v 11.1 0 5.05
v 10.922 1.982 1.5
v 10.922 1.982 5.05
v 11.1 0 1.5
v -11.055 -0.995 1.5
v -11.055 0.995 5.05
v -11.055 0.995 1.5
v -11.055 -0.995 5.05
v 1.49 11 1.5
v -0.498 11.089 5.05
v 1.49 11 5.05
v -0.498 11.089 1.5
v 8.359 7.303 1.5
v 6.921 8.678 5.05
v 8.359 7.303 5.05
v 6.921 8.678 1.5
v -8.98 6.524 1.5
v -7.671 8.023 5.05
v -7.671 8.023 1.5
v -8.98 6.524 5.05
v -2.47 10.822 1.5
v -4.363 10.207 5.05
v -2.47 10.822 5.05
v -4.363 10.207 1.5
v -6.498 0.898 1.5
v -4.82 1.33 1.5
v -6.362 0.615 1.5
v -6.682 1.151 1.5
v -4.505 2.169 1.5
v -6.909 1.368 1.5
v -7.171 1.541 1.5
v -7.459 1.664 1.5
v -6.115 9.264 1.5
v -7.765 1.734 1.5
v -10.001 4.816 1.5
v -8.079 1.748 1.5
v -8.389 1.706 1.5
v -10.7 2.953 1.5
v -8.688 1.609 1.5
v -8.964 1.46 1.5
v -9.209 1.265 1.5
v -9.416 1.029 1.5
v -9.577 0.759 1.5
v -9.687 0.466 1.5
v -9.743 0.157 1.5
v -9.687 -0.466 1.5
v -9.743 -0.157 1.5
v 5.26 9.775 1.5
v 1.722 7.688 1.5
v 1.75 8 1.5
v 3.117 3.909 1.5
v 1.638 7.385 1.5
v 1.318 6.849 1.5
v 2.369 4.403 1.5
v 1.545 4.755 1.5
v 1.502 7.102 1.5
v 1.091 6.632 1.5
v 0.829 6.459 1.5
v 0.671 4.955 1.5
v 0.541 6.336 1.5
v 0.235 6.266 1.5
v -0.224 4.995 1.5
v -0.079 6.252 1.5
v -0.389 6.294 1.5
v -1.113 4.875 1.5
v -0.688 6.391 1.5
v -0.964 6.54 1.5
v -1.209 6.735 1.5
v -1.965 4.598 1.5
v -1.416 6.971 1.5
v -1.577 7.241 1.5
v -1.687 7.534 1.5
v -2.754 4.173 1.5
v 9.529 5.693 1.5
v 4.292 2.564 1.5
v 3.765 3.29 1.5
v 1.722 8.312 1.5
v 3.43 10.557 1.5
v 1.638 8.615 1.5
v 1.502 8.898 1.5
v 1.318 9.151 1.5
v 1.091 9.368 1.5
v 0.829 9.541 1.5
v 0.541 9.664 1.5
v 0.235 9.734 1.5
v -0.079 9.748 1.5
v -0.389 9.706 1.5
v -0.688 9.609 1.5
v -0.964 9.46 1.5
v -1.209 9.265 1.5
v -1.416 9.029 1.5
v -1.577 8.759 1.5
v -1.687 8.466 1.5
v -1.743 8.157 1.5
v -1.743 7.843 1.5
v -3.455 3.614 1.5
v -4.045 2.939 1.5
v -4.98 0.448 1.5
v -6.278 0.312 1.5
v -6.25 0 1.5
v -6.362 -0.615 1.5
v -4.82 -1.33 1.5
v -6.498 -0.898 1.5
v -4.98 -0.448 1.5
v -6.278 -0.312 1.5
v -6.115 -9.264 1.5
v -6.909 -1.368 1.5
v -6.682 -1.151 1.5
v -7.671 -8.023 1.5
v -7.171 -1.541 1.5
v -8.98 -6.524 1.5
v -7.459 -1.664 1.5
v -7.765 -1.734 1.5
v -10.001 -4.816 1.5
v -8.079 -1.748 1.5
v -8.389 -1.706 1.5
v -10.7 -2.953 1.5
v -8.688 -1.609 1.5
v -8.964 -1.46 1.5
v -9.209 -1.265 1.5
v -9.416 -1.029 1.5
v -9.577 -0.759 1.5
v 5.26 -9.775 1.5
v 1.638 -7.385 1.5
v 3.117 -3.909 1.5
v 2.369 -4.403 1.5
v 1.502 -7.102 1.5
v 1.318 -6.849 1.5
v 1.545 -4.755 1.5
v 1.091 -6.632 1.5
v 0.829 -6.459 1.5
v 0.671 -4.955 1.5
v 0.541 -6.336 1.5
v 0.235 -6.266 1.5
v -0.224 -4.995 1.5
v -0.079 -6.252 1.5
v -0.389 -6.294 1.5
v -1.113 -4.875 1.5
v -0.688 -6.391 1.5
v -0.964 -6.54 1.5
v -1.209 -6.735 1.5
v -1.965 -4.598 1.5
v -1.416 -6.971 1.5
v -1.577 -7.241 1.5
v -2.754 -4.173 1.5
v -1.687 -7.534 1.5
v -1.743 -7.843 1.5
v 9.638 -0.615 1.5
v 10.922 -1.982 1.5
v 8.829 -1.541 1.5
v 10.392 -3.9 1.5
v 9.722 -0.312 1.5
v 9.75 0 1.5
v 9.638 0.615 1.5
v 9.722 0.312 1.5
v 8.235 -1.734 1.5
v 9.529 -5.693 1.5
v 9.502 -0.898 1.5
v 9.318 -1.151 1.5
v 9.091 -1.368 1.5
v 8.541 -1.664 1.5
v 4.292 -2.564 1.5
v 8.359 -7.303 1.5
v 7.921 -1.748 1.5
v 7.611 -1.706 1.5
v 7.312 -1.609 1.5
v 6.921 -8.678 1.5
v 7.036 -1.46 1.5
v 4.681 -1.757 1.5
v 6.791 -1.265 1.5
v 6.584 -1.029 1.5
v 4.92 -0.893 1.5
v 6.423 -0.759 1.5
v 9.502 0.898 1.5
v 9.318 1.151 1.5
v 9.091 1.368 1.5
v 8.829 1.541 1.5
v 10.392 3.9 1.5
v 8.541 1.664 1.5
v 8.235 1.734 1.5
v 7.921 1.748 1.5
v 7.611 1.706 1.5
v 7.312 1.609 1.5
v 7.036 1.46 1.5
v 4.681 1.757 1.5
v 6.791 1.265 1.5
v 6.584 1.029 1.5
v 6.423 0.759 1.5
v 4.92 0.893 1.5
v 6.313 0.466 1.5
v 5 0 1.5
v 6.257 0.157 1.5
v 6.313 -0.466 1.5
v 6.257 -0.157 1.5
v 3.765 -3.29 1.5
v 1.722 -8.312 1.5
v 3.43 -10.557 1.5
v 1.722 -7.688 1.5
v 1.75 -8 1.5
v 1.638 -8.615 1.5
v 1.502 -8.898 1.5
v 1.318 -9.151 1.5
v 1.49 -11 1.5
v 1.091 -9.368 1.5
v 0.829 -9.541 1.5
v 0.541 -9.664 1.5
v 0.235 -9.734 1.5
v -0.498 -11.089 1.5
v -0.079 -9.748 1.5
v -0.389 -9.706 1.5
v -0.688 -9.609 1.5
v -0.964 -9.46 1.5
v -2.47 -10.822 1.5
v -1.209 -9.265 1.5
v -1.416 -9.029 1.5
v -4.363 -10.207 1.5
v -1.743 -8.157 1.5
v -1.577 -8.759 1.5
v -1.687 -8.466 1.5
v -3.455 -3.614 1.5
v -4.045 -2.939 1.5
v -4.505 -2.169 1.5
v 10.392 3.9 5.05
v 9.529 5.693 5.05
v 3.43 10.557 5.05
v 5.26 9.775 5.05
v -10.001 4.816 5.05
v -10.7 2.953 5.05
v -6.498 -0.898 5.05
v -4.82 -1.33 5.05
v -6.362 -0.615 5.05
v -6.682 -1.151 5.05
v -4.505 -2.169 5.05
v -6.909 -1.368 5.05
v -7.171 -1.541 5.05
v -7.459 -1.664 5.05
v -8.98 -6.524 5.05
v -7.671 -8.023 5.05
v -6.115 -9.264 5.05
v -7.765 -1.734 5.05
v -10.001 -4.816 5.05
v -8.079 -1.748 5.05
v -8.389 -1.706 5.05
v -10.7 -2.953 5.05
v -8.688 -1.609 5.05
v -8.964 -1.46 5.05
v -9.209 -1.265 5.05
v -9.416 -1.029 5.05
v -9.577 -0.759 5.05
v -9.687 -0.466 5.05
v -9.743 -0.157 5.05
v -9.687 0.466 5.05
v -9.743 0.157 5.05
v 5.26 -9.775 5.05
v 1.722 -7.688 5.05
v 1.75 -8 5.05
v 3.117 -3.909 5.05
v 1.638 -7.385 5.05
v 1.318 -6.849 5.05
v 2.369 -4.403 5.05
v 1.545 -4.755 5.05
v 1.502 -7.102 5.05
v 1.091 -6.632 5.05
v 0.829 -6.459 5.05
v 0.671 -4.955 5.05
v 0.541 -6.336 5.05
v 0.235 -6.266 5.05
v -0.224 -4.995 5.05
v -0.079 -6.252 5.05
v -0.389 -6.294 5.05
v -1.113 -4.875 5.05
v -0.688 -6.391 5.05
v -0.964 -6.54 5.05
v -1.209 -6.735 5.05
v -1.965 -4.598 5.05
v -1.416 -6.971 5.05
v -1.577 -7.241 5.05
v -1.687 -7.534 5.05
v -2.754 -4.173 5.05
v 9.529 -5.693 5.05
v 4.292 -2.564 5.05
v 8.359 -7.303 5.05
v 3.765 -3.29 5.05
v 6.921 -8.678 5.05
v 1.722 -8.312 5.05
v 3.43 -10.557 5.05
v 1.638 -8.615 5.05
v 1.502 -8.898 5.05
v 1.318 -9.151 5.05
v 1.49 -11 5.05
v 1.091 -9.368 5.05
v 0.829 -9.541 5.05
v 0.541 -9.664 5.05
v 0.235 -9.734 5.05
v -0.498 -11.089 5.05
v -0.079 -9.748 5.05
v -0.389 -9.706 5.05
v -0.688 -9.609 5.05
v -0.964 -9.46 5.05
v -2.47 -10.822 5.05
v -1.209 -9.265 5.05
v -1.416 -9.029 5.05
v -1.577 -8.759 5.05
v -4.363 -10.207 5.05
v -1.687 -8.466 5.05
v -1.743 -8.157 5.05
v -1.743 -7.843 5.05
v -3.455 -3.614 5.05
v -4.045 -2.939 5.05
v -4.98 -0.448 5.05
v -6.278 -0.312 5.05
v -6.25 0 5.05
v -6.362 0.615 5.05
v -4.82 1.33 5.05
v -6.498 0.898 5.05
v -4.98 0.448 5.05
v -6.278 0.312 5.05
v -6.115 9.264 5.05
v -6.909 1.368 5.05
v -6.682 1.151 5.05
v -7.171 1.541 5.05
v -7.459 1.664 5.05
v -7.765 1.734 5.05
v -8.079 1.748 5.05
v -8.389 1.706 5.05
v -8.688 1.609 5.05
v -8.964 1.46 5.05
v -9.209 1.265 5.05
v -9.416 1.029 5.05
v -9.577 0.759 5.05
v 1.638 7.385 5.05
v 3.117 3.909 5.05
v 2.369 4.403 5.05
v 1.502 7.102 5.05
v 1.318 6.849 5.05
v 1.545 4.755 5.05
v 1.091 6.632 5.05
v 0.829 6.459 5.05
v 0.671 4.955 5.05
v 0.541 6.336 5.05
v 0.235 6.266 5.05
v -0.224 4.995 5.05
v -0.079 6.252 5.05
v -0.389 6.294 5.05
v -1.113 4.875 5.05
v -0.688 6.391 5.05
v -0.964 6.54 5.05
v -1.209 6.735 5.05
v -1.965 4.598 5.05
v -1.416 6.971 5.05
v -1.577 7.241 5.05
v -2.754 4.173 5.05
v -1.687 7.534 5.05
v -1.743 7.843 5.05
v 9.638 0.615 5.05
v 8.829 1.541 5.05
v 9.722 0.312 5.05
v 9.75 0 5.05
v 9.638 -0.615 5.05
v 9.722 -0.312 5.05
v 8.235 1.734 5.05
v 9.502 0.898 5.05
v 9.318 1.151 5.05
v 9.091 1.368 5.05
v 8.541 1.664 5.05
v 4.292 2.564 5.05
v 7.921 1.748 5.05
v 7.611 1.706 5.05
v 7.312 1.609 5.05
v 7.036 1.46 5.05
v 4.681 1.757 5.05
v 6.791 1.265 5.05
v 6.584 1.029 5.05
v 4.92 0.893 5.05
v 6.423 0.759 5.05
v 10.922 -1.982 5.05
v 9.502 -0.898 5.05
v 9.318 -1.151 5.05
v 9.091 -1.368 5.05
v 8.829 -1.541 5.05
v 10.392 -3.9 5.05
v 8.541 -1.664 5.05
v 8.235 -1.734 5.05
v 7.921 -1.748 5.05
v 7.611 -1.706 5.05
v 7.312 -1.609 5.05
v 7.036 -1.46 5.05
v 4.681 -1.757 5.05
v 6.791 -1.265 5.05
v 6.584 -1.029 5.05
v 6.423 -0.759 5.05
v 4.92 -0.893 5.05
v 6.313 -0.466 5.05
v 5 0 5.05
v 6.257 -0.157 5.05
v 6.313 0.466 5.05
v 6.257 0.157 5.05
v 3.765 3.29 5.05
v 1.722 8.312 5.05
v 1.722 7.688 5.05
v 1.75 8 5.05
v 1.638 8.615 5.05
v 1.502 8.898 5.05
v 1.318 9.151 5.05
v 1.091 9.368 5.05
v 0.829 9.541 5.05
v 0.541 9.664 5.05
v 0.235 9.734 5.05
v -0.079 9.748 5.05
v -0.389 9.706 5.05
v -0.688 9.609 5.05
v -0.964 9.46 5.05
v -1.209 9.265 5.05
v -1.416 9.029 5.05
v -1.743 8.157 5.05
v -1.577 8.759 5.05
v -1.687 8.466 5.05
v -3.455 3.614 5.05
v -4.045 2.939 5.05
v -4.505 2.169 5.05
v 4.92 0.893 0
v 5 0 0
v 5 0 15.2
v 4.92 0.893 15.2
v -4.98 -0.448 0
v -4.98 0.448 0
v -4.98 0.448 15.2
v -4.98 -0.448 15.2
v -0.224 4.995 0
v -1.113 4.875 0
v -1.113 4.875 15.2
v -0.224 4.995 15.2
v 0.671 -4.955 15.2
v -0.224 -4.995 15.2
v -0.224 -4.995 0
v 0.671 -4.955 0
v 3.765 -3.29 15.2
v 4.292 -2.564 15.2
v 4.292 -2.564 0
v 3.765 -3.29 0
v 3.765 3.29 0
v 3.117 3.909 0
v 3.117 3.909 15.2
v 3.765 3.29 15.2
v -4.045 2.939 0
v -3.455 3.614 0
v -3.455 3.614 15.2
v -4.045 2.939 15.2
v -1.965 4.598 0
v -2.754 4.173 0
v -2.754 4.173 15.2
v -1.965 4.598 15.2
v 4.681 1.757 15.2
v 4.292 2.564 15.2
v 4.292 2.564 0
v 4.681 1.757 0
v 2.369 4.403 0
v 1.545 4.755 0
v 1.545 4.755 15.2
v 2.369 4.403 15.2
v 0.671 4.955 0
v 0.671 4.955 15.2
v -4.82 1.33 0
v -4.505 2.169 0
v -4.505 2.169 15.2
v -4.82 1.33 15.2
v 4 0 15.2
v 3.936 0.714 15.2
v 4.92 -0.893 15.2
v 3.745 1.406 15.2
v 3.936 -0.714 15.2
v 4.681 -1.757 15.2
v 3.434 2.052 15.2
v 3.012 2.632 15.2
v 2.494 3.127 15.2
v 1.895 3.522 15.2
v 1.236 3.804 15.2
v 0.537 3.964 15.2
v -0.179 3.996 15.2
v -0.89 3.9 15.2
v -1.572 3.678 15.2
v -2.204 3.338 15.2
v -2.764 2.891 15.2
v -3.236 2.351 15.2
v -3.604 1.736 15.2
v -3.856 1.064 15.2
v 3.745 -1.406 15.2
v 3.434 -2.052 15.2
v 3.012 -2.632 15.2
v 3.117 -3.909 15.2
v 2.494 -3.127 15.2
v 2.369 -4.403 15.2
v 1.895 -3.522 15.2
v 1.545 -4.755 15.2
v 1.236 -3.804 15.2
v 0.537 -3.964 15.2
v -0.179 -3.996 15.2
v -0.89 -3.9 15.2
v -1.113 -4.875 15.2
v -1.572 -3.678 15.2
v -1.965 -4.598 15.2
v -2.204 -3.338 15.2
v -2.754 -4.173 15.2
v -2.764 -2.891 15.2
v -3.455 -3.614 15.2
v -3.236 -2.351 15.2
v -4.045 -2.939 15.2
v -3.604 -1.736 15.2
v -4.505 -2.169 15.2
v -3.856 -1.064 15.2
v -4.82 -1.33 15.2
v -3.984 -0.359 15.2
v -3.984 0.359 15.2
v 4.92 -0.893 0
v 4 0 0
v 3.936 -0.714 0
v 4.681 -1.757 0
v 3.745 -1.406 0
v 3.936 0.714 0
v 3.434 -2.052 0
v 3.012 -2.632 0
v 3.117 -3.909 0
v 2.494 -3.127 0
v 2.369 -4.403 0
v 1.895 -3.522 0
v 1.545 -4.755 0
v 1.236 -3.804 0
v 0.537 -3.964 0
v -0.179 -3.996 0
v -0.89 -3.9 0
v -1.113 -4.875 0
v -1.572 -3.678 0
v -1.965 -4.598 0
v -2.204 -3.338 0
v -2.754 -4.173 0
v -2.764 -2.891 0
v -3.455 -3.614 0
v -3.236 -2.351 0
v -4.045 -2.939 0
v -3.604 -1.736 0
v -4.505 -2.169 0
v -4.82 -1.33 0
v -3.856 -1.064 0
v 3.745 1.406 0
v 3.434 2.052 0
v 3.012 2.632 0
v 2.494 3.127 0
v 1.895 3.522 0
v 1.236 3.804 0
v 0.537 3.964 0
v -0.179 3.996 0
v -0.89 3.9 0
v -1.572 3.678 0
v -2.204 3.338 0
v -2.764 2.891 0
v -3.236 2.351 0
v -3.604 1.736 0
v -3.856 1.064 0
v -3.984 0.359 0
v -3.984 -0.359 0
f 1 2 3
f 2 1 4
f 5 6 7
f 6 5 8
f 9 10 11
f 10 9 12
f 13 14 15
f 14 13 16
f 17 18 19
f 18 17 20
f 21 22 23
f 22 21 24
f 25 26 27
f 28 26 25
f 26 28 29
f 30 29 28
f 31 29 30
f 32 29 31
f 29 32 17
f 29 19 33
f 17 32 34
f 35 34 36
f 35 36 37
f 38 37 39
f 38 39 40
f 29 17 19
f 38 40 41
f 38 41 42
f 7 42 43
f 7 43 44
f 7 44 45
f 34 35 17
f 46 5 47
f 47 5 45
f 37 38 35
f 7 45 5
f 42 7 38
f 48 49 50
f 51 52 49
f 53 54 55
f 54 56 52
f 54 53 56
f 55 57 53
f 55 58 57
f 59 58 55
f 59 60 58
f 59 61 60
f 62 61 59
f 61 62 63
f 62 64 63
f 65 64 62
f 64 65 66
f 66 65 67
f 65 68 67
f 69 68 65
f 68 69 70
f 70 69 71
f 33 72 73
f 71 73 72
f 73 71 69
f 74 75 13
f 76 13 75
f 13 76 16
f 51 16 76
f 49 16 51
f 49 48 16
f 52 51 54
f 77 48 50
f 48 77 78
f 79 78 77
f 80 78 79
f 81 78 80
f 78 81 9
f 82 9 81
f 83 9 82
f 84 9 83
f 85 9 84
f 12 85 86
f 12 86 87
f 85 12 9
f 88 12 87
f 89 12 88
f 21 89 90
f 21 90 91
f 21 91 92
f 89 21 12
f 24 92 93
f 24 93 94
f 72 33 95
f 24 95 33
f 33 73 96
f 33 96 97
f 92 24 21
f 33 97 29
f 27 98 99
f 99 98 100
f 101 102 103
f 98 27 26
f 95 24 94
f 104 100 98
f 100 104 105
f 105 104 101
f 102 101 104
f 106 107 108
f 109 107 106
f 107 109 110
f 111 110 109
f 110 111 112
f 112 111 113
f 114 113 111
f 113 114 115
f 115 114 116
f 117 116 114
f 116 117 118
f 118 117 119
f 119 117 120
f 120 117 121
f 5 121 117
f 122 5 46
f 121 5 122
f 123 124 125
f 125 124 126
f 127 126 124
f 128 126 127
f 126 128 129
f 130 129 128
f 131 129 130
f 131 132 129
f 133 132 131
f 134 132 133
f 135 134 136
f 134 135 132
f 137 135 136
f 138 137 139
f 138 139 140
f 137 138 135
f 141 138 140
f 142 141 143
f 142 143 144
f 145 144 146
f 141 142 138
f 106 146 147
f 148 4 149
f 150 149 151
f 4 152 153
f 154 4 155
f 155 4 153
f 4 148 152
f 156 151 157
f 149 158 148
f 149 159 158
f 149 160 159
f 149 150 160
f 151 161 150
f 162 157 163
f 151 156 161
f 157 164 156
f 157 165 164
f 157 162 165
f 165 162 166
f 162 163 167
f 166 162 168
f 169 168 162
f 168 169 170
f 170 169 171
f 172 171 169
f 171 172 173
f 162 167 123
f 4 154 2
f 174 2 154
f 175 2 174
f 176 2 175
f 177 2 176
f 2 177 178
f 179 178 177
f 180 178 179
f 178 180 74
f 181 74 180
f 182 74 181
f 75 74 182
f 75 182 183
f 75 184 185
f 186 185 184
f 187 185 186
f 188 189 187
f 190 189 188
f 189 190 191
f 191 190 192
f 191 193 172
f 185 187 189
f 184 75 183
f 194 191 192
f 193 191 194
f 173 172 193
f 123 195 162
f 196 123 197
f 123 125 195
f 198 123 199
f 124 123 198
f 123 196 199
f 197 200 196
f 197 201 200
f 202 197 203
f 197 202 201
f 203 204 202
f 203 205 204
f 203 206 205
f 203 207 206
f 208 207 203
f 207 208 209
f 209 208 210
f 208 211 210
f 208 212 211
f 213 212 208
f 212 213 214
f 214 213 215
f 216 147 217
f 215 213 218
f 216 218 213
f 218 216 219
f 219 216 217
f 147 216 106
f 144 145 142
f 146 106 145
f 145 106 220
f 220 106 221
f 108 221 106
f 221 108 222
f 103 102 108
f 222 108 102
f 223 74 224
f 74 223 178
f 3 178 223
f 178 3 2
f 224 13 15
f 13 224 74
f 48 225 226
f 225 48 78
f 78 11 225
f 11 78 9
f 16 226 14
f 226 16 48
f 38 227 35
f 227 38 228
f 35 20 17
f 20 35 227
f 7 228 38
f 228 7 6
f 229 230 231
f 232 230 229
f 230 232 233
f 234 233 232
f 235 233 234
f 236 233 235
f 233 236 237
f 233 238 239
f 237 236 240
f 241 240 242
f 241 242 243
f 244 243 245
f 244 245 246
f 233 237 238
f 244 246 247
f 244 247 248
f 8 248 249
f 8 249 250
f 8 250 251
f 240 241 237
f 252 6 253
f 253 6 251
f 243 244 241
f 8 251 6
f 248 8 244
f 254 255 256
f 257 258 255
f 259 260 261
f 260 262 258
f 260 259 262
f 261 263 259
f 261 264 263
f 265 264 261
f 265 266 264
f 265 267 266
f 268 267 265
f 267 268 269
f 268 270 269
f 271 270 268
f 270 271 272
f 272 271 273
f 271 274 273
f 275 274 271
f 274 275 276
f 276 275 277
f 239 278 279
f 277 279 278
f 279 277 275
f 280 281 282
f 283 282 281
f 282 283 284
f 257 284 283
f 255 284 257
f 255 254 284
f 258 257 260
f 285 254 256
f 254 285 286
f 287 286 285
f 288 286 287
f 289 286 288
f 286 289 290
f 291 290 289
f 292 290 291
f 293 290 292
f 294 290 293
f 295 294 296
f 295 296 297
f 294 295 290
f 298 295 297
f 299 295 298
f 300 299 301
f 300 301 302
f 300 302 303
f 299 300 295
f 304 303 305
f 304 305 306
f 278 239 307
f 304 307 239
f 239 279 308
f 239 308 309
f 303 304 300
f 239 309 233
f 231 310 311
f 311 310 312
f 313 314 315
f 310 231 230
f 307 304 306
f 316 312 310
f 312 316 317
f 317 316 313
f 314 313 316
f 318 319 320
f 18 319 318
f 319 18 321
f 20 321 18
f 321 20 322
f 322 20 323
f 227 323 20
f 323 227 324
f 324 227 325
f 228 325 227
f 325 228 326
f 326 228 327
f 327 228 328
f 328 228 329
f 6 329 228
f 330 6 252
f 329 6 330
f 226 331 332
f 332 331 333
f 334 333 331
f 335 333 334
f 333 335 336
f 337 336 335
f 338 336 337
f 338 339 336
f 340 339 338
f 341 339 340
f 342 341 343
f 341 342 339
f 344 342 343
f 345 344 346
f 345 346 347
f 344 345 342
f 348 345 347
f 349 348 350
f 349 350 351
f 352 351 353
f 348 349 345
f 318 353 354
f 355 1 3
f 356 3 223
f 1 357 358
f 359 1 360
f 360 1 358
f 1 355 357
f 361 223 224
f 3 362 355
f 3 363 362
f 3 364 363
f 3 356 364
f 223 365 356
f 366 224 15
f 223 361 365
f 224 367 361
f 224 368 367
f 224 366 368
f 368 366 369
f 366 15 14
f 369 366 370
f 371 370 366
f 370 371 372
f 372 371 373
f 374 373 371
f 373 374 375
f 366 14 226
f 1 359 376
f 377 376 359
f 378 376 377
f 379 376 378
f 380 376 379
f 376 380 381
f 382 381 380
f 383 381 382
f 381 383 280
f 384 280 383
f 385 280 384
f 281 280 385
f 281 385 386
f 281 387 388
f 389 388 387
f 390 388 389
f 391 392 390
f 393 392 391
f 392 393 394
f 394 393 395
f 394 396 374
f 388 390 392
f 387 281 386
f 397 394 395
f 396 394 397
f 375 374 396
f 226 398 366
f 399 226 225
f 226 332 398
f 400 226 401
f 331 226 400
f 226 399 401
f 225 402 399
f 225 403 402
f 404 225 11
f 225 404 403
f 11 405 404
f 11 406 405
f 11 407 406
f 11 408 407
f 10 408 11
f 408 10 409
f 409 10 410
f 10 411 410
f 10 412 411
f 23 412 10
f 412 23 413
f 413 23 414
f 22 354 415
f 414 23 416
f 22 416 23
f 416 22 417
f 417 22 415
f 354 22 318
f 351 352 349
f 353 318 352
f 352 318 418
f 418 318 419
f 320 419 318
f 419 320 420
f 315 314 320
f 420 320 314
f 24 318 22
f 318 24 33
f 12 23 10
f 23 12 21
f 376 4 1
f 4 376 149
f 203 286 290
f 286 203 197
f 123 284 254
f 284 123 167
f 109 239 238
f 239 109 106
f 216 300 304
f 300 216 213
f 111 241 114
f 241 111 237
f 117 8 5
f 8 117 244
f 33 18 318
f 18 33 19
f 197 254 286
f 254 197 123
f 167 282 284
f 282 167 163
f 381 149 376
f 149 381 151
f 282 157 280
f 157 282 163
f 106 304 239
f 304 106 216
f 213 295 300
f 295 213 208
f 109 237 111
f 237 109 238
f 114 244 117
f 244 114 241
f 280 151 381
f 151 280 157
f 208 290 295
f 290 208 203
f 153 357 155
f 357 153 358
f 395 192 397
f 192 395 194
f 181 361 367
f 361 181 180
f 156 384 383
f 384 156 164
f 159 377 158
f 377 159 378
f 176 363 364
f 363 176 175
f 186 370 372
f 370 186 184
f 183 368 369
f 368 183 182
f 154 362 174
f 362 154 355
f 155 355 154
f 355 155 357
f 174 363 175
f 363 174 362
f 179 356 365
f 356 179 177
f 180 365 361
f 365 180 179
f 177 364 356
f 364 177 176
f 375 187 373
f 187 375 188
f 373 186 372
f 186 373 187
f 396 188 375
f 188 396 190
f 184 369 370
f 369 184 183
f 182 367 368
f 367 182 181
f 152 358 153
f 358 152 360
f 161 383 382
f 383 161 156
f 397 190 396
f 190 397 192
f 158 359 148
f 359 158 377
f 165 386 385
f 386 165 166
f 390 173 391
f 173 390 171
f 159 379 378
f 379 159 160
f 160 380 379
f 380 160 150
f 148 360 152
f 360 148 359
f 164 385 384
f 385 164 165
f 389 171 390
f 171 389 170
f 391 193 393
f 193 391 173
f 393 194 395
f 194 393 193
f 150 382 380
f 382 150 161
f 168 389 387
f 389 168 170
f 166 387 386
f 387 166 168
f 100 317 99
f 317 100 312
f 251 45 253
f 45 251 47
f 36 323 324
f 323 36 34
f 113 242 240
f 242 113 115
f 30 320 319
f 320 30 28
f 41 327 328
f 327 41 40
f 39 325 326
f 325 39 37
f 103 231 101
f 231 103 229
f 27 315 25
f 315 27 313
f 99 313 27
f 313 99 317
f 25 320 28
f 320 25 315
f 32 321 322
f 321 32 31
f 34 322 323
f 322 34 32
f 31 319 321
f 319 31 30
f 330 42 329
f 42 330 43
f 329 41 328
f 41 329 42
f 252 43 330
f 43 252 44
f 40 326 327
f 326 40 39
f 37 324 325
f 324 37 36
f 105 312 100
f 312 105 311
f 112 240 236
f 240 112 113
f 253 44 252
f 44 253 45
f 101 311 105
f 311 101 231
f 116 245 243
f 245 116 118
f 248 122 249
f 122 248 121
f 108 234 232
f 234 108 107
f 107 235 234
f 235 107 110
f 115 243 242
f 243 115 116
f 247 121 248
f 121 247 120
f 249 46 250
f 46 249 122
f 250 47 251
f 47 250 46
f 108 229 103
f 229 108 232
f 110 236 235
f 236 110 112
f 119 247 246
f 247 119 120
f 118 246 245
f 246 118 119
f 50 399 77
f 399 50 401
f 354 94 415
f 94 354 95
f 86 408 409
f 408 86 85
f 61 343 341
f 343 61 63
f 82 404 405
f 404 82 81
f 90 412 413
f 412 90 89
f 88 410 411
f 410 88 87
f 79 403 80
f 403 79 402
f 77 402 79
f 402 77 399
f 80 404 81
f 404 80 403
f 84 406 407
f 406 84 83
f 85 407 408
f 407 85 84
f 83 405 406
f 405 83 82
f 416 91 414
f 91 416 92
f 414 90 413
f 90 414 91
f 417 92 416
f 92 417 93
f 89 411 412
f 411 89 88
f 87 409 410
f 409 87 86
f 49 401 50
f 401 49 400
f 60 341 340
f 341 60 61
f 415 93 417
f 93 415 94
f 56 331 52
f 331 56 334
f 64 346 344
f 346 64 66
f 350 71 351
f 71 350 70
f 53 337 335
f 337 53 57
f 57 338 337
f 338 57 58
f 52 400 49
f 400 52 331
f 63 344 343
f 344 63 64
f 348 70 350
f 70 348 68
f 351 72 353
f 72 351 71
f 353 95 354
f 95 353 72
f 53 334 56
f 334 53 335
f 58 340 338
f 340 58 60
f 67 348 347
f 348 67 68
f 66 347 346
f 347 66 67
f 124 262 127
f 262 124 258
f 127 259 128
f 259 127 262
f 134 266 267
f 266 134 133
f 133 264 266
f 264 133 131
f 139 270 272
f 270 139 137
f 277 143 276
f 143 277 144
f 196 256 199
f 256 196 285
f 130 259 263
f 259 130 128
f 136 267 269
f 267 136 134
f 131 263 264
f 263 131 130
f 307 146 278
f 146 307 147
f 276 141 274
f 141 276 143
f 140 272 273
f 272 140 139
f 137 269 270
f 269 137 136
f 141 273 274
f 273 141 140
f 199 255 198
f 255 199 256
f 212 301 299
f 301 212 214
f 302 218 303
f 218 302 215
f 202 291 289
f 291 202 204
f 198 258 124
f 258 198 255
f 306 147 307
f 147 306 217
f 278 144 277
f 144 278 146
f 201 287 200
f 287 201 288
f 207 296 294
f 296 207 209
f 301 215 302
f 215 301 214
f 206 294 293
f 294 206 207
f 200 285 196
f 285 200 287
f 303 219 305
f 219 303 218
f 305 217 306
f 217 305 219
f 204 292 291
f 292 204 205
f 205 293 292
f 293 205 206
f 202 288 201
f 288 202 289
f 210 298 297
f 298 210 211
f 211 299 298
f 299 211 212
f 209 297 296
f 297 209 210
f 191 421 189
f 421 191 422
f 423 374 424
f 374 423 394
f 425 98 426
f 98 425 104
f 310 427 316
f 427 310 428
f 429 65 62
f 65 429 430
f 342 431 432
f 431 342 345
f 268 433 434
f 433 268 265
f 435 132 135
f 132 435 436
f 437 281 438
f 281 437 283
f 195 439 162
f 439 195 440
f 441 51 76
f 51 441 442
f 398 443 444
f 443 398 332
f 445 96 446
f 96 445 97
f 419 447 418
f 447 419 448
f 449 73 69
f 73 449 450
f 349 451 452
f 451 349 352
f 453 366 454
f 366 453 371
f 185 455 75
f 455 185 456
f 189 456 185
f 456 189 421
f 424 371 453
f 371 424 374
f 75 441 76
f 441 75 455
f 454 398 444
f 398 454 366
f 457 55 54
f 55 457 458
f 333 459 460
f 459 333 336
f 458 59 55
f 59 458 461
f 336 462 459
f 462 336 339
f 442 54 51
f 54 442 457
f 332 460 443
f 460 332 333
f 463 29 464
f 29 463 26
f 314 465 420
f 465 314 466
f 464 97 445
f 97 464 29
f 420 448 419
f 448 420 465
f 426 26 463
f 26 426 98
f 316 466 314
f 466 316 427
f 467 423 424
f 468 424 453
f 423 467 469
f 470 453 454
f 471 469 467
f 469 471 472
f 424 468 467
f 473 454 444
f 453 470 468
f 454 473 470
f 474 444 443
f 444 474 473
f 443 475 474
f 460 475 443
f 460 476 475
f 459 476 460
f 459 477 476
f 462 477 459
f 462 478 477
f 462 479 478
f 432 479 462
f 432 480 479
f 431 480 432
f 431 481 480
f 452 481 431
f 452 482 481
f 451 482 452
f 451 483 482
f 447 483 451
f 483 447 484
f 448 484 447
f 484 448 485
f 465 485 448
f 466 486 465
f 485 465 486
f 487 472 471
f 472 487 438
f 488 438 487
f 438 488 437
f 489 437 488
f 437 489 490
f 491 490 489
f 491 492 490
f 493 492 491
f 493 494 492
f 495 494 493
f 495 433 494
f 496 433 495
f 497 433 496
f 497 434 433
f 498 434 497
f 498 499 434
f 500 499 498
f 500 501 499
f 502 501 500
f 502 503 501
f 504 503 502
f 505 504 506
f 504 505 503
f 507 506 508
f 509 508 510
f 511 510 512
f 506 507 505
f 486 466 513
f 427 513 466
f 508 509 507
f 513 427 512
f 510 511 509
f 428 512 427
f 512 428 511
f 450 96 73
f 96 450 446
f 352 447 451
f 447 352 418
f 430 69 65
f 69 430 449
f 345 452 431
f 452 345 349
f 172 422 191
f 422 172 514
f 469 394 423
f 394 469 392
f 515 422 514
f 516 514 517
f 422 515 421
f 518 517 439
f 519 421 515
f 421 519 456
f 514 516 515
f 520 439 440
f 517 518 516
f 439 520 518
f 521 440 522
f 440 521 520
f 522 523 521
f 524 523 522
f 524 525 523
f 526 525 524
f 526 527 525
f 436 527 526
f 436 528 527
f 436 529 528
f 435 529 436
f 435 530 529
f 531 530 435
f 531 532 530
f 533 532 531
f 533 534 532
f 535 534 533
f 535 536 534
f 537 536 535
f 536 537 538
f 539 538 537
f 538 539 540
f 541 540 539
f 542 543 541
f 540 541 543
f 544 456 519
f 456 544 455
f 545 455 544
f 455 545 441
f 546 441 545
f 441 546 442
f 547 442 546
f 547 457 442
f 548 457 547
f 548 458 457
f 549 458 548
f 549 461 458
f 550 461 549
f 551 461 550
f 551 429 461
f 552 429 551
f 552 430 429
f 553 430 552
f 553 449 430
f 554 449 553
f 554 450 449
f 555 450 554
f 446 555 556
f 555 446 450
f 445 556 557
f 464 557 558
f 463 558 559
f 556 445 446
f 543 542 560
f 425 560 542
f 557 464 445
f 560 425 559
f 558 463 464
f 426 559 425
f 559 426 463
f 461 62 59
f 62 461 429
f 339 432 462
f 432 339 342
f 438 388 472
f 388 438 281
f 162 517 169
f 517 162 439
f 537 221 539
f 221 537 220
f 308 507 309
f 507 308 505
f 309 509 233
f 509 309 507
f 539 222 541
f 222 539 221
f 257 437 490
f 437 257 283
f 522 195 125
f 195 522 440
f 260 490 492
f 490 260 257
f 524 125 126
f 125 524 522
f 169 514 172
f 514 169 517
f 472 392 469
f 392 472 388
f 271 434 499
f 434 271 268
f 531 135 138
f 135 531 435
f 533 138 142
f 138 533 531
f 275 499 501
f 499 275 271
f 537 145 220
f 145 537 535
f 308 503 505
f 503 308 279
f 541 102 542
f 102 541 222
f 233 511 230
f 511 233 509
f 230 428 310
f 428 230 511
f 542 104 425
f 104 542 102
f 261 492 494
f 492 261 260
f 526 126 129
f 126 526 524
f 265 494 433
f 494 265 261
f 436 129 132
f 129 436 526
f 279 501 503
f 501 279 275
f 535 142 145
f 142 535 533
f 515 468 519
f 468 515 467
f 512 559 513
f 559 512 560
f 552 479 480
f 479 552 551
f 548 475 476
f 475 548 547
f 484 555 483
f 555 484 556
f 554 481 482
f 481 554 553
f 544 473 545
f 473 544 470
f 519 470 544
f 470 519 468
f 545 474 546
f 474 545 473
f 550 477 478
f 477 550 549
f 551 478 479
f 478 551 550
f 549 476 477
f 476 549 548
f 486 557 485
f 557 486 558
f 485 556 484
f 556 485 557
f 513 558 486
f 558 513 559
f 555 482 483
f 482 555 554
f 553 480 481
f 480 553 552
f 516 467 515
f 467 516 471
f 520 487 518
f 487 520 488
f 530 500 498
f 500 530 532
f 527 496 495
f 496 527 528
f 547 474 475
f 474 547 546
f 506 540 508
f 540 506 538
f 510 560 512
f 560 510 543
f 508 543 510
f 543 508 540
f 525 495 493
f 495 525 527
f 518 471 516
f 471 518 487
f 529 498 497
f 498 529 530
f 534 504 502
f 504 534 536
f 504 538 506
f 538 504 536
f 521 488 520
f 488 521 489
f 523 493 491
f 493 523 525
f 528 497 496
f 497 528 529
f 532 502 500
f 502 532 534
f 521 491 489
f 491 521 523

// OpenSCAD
/**
 * T8 lead screw.
 * By: Neeraj Verma Mar 2020
 */

outer_diameter=22.2;
flange_height=3.55;
hole_diameter=3.5;
screw_height=15.2;
screw_diameter=10;

module leadscrew_T8() {
    $fn=35;

    module body() {
        difference() {
            cylinder(d=screw_diameter,h=screw_height);        
        }
        difference() {
            translate([0,0,1.5]) cylinder(d=outer_diameter,h=flange_height);
            translate([8,0,0]) cylinder(d=hole_diameter,h=10);
            translate([-8,0,0]) cylinder(d=hole_diameter,h=10);
            translate([0,8,0]) cylinder(d=hole_diameter,h=10);
            translate([0,-8,0]) cylinder(d=hole_diameter,h=10);        
        }
    }

    difference() {
        body();
        translate([0,0,-0.1]) cylinder(d=8,h=16);                
    }
}

leadscrew_T8();
